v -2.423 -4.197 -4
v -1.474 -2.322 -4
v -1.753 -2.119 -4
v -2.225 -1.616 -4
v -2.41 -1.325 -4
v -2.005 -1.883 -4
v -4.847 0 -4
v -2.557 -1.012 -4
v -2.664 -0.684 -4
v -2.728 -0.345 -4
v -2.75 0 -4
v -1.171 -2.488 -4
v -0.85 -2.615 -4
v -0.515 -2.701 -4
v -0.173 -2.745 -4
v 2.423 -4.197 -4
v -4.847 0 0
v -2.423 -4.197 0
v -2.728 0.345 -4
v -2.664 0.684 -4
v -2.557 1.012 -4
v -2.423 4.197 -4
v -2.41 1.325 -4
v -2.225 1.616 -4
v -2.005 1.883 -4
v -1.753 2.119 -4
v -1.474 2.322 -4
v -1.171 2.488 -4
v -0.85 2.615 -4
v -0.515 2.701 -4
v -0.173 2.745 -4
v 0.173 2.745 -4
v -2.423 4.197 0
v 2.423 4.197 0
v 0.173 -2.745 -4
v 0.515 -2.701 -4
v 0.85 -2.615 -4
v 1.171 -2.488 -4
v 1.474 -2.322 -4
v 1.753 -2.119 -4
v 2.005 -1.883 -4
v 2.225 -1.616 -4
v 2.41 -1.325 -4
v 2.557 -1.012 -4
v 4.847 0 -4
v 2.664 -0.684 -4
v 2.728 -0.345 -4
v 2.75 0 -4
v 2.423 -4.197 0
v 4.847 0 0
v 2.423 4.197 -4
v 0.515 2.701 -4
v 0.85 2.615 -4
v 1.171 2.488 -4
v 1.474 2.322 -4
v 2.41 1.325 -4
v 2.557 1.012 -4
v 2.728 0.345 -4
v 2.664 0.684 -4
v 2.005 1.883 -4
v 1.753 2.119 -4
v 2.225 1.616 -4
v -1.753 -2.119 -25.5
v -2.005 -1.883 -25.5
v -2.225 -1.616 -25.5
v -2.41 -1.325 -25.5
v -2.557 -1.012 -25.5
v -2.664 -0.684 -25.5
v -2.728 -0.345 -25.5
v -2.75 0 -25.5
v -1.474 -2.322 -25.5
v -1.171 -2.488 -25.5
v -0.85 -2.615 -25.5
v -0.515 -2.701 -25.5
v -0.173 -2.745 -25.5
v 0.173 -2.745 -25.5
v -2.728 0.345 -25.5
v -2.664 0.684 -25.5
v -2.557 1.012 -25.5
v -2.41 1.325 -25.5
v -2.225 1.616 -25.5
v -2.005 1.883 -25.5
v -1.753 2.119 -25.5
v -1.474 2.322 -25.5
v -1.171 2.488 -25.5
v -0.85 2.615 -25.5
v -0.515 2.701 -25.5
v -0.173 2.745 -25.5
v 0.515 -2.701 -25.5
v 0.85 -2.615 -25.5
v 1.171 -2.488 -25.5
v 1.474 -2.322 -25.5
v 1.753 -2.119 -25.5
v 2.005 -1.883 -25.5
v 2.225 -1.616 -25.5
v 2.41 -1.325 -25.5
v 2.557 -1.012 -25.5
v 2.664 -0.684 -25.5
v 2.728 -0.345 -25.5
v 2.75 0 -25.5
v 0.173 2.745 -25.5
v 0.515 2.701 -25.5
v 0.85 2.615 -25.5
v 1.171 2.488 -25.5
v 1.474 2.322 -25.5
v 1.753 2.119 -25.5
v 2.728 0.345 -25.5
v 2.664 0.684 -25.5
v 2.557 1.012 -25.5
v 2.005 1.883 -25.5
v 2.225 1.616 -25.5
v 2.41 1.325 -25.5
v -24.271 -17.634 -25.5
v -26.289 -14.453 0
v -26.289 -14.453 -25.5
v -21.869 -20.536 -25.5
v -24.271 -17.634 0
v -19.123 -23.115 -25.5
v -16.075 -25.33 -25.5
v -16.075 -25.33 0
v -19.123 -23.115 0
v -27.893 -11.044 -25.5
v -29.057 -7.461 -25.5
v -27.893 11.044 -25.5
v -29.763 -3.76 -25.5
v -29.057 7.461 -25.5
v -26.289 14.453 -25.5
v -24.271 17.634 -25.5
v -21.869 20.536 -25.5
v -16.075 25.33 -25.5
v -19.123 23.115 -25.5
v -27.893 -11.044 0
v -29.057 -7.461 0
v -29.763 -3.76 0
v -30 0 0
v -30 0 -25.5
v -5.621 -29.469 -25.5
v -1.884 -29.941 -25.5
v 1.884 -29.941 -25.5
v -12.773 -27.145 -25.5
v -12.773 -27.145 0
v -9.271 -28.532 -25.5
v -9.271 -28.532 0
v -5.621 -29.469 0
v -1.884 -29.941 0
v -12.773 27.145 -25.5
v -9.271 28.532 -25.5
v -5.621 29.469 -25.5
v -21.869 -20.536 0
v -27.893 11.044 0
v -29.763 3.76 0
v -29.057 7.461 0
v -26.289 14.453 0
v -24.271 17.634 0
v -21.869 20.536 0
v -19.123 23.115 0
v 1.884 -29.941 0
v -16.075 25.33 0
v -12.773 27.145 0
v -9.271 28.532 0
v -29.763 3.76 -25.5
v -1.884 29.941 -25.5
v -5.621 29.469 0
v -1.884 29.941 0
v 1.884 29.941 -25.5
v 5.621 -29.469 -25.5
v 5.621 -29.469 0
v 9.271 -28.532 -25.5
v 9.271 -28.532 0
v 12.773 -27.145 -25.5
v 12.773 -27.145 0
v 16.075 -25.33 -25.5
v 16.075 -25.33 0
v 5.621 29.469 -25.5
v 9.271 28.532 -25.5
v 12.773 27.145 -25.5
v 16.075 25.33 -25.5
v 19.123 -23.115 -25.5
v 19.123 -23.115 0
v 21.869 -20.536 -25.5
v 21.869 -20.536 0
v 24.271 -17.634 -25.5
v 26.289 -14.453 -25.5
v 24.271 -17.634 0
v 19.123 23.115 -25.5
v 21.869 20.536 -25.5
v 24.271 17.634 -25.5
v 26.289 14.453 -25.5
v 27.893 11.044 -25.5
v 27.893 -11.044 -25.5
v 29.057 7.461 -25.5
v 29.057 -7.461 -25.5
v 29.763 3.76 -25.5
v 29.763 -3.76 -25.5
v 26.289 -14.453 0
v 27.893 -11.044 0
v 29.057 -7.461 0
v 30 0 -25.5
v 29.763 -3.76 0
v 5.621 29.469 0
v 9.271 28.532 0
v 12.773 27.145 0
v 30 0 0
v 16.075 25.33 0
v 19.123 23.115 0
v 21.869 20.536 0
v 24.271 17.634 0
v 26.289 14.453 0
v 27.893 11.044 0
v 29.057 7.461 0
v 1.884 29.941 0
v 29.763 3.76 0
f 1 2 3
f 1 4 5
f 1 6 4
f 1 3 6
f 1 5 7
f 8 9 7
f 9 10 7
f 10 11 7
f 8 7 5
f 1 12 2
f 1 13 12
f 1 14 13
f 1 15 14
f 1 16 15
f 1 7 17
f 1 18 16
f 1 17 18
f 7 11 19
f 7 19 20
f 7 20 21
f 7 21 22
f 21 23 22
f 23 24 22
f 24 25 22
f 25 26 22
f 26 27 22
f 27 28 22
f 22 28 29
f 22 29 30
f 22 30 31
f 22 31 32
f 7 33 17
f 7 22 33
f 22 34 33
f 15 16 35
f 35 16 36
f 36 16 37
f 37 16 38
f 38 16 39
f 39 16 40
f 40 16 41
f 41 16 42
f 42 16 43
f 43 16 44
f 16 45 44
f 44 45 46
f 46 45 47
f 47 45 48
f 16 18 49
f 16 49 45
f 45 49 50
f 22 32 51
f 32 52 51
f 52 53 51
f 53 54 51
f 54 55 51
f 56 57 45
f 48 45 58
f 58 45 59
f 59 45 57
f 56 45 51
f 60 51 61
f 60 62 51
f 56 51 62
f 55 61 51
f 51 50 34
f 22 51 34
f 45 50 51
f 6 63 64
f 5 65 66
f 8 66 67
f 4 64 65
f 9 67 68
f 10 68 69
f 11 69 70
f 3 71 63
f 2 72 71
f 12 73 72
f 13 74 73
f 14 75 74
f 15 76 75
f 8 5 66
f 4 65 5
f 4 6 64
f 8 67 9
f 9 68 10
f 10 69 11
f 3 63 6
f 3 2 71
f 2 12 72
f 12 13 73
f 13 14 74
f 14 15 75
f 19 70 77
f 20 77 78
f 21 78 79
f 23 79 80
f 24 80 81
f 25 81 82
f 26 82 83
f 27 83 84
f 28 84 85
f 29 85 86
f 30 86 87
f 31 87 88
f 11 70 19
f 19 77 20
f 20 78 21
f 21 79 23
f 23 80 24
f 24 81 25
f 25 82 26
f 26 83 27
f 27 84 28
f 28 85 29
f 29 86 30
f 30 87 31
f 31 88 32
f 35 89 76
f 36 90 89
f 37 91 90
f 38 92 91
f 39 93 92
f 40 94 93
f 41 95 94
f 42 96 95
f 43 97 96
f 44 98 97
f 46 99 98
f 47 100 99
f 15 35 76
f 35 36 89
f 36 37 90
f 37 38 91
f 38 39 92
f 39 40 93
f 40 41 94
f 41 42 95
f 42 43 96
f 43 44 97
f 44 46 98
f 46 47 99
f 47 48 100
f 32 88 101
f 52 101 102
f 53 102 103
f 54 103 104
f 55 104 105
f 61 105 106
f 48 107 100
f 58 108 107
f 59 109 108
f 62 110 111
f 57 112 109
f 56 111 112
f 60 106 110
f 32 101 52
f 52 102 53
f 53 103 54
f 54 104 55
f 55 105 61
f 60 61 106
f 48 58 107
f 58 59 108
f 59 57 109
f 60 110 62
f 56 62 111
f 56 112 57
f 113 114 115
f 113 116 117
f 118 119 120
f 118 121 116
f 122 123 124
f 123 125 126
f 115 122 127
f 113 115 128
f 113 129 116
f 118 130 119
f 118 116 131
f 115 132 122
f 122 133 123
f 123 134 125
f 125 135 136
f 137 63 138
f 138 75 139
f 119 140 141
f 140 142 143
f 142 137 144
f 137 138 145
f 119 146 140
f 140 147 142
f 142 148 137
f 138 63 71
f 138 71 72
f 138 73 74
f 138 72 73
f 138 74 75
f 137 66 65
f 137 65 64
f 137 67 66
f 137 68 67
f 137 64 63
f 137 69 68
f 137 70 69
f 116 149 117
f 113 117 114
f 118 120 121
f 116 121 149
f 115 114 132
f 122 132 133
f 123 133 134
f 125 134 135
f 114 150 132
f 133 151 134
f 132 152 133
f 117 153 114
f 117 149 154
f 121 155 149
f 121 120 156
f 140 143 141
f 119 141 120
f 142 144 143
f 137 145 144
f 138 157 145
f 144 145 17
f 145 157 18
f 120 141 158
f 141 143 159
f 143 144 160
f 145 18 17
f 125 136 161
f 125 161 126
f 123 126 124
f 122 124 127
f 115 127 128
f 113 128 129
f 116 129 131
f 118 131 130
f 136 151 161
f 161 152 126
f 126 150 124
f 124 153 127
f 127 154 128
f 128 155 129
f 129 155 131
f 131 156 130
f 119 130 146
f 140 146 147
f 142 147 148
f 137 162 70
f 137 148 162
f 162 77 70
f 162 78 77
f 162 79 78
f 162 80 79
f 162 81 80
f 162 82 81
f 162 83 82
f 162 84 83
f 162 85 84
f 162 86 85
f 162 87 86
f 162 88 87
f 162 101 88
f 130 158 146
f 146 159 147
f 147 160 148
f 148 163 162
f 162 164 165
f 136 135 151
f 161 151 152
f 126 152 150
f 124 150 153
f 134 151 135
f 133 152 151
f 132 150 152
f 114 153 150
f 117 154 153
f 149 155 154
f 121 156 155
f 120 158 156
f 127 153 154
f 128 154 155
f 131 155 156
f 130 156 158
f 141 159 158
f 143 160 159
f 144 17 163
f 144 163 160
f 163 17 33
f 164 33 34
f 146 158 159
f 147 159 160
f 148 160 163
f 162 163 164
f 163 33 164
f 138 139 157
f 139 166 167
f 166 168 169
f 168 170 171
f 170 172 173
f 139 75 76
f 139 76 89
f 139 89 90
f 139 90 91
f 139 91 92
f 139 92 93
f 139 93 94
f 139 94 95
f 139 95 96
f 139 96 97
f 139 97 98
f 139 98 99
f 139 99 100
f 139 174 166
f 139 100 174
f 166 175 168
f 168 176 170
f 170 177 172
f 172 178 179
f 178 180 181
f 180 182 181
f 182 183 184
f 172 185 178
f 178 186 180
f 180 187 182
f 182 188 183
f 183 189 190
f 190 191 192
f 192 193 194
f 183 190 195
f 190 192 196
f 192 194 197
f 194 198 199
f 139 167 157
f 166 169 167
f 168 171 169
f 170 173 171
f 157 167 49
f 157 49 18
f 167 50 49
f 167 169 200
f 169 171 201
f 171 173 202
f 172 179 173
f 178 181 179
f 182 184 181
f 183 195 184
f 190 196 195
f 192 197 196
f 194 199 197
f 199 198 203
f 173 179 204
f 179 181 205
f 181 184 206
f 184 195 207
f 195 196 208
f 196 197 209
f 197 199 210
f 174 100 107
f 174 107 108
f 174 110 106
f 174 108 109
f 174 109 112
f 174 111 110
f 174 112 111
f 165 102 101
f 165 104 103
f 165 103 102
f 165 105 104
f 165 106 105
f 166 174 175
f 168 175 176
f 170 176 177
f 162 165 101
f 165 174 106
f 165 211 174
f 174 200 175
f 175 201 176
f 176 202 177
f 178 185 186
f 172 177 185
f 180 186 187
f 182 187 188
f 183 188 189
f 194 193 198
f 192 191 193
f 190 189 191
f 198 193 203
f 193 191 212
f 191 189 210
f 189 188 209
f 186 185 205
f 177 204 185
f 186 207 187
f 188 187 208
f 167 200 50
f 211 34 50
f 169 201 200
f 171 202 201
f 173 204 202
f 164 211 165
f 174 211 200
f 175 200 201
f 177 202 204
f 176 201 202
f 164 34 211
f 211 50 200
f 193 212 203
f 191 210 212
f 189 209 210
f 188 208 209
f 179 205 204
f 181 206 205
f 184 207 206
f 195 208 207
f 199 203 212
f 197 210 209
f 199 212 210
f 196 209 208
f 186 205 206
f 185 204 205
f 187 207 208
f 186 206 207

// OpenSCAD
$fn = 50;


difference() {
	union() {
		translate(v = [0, 0, -25.5000000000]) {
			cylinder(h = 25.5000000000, r = 30.0000000000);
		}
	}
	union() {
		translate(v = [0, 0, 0]) {
			rotate(a = [0, 0, 0]) {
				difference() {
					union() {
						translate(v = [0, 0, -4]) {
							linear_extrude(height = 4) {
								polygon(points = [[4.8468000000, 0.0000000000], [2.4234000000, 4.1974519271], [-2.4234000000, 4.1974519271], [-4.8468000000, 0.0000000000], [-2.4234000000, -4.1974519271], [2.4234000000, -4.1974519271]]);
							}
						}
					}
					union();
				}
			}
		}
		#translate(v = [0, 0, -100.0000000000]) {
			cylinder(h = 200, r = 2.7500000000);
		}
	}
}
